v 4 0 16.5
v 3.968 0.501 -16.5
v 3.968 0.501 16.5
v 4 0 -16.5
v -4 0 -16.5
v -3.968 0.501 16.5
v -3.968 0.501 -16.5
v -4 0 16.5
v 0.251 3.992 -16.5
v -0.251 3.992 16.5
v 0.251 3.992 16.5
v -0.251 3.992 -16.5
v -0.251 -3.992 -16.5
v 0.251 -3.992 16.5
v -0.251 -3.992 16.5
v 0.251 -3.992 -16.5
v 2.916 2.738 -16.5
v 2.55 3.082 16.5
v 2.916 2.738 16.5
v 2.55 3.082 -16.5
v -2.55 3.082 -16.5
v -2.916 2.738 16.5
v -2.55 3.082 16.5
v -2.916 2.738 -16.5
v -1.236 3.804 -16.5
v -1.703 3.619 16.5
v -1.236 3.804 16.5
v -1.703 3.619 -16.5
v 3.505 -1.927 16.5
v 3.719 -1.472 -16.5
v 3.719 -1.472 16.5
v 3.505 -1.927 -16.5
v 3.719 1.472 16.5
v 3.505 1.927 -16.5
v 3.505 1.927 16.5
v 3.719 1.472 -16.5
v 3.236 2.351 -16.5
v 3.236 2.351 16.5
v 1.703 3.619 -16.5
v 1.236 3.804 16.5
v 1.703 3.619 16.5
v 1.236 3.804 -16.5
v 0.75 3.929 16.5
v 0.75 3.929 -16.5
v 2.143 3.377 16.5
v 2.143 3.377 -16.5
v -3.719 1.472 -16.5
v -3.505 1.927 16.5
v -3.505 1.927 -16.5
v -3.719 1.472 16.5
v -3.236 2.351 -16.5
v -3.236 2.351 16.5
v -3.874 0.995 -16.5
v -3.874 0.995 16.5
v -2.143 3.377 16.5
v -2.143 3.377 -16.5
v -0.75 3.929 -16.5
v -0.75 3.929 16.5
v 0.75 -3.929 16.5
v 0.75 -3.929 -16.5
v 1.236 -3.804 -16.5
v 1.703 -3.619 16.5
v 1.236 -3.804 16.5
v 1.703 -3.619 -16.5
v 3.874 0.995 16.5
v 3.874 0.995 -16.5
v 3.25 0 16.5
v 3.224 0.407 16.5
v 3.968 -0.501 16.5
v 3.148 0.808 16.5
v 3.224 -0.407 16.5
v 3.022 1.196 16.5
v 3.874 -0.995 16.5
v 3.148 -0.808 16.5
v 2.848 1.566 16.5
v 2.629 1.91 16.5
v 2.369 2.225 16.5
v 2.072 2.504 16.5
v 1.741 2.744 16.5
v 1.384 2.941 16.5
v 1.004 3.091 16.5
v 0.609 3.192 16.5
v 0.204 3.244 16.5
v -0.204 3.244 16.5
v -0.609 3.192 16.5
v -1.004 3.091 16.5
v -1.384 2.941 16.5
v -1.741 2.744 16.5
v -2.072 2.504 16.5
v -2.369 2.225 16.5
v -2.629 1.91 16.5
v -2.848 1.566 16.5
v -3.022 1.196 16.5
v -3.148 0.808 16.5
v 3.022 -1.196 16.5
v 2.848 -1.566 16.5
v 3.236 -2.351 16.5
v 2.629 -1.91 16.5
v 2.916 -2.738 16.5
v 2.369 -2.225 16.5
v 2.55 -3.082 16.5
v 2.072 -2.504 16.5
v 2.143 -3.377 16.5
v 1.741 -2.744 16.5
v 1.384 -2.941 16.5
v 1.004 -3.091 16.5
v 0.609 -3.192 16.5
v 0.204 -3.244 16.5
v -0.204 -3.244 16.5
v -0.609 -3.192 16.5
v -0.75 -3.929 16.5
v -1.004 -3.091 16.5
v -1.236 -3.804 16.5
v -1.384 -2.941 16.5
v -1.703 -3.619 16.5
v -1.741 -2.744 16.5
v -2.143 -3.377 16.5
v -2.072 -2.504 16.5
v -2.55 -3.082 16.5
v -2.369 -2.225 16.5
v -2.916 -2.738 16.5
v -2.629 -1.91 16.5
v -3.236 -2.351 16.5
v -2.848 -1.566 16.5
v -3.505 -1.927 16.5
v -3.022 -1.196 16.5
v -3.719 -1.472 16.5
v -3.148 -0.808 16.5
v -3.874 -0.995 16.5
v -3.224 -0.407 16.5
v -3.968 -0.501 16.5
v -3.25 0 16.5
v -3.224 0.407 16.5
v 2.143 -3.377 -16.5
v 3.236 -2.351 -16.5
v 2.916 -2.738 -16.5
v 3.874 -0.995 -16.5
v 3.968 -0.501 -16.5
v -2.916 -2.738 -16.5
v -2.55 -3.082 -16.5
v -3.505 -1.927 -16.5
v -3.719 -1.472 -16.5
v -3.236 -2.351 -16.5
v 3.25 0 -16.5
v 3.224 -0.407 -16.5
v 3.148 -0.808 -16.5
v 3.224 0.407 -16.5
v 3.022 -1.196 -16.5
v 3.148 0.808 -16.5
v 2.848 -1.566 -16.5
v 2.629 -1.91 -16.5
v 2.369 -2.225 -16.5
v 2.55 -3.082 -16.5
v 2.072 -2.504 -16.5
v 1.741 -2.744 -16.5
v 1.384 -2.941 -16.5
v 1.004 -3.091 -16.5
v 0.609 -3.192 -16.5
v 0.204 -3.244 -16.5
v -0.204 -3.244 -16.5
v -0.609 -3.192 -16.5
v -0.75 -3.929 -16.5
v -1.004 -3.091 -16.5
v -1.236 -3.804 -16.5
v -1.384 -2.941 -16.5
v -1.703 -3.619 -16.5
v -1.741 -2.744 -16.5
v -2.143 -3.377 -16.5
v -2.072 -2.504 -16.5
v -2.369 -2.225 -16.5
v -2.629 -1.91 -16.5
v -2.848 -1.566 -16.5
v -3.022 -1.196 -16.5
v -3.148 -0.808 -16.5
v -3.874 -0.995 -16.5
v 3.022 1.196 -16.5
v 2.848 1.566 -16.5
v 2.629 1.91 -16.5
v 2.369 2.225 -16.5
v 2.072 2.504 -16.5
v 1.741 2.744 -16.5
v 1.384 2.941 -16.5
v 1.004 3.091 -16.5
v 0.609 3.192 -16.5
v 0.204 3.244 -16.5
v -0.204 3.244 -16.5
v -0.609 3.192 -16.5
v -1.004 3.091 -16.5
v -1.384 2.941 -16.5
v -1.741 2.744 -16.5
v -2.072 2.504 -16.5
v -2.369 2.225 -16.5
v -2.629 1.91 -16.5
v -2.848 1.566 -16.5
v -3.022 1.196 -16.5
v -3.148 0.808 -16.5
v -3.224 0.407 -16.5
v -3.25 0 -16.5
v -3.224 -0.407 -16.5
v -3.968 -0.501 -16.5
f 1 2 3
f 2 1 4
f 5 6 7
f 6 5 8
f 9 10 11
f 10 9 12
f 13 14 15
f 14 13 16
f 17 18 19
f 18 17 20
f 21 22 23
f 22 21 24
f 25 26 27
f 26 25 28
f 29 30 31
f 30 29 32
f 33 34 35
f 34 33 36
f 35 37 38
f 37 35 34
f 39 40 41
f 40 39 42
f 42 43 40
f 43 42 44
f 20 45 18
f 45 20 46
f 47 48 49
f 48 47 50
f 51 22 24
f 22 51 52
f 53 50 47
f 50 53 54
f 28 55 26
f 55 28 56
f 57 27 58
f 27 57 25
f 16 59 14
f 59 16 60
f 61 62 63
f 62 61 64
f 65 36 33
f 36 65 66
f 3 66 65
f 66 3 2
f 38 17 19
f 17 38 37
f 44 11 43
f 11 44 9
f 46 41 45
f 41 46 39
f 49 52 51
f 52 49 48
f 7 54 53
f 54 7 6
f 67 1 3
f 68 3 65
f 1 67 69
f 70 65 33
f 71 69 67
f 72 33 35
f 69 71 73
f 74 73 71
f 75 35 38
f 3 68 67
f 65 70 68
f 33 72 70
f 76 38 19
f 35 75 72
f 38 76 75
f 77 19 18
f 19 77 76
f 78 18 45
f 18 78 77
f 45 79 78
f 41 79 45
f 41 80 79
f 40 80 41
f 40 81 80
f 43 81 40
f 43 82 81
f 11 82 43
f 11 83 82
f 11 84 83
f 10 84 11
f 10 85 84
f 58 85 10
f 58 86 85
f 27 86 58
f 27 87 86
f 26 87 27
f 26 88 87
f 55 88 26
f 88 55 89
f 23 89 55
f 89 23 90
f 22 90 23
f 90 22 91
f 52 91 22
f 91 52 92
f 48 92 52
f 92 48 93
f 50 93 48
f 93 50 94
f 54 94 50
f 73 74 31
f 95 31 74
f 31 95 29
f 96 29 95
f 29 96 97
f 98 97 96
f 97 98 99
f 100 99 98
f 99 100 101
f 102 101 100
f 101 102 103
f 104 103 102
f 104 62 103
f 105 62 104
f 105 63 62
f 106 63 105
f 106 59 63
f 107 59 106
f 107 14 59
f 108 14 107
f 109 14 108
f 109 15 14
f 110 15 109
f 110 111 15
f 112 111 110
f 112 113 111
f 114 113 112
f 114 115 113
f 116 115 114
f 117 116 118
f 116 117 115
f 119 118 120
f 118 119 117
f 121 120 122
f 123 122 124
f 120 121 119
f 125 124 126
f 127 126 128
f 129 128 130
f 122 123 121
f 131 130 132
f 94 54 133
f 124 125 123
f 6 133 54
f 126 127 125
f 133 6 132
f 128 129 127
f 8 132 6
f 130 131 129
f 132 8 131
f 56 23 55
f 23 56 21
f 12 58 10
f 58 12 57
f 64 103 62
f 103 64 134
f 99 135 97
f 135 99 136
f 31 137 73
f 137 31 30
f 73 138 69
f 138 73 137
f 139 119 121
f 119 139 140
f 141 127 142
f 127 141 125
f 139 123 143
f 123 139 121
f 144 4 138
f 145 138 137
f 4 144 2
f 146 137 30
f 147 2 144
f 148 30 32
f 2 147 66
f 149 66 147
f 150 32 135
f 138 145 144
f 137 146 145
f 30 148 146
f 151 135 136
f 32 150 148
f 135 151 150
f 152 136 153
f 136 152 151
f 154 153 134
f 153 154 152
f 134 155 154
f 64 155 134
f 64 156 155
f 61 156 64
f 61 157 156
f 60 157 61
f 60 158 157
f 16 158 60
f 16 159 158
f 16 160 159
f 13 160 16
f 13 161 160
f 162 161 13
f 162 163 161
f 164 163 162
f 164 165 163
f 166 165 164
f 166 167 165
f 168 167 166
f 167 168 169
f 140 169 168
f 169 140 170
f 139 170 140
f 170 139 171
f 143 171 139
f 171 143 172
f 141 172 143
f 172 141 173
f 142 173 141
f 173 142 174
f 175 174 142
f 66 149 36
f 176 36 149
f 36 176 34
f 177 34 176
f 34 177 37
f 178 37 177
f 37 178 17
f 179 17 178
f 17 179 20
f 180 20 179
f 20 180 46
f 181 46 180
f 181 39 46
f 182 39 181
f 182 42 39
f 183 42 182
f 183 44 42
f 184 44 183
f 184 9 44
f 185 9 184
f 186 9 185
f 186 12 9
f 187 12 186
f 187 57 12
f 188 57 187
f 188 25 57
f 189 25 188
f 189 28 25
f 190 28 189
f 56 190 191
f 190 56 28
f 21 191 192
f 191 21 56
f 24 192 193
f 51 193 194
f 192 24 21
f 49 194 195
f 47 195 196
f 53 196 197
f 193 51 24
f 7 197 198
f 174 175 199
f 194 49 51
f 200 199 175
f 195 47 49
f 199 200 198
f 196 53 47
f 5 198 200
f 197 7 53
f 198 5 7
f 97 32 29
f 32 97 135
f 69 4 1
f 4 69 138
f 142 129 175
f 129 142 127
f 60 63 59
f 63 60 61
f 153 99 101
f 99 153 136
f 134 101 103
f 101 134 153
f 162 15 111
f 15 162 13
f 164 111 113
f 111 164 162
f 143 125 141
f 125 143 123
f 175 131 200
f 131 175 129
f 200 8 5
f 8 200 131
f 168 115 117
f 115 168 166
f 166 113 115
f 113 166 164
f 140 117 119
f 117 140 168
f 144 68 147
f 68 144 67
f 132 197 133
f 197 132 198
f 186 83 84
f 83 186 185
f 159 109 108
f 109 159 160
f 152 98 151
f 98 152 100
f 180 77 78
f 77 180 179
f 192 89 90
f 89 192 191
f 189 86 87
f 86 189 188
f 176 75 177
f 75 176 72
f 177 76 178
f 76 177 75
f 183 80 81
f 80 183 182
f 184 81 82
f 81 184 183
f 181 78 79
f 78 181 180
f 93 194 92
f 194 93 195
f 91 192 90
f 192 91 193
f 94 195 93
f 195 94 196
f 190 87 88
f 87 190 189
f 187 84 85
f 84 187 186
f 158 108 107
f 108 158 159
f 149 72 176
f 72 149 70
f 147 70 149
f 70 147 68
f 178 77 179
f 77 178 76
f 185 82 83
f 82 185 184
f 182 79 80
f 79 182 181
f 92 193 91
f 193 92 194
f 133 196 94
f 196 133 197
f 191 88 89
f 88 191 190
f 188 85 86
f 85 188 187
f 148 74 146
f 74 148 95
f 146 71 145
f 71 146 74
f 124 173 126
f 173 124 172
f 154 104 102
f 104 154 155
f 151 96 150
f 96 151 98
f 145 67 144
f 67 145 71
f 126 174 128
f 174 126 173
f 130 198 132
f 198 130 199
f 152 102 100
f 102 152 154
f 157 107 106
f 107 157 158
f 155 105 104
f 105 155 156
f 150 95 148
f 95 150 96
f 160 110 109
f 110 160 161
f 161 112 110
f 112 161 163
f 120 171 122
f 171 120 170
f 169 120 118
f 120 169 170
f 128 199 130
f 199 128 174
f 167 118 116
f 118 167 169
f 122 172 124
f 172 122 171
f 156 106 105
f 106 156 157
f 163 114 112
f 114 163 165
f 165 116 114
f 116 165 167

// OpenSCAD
$fn = 50;


difference() {
	union() {
		translate(v = [0, 0, -16.5000000000]) {
			cylinder(h = 33, r = 4.0000000000);
		}
	}
	union() {
		translate(v = [0, 0, -100.0000000000]) {
			cylinder(h = 200, r = 3.2500000000);
		}
	}
}
